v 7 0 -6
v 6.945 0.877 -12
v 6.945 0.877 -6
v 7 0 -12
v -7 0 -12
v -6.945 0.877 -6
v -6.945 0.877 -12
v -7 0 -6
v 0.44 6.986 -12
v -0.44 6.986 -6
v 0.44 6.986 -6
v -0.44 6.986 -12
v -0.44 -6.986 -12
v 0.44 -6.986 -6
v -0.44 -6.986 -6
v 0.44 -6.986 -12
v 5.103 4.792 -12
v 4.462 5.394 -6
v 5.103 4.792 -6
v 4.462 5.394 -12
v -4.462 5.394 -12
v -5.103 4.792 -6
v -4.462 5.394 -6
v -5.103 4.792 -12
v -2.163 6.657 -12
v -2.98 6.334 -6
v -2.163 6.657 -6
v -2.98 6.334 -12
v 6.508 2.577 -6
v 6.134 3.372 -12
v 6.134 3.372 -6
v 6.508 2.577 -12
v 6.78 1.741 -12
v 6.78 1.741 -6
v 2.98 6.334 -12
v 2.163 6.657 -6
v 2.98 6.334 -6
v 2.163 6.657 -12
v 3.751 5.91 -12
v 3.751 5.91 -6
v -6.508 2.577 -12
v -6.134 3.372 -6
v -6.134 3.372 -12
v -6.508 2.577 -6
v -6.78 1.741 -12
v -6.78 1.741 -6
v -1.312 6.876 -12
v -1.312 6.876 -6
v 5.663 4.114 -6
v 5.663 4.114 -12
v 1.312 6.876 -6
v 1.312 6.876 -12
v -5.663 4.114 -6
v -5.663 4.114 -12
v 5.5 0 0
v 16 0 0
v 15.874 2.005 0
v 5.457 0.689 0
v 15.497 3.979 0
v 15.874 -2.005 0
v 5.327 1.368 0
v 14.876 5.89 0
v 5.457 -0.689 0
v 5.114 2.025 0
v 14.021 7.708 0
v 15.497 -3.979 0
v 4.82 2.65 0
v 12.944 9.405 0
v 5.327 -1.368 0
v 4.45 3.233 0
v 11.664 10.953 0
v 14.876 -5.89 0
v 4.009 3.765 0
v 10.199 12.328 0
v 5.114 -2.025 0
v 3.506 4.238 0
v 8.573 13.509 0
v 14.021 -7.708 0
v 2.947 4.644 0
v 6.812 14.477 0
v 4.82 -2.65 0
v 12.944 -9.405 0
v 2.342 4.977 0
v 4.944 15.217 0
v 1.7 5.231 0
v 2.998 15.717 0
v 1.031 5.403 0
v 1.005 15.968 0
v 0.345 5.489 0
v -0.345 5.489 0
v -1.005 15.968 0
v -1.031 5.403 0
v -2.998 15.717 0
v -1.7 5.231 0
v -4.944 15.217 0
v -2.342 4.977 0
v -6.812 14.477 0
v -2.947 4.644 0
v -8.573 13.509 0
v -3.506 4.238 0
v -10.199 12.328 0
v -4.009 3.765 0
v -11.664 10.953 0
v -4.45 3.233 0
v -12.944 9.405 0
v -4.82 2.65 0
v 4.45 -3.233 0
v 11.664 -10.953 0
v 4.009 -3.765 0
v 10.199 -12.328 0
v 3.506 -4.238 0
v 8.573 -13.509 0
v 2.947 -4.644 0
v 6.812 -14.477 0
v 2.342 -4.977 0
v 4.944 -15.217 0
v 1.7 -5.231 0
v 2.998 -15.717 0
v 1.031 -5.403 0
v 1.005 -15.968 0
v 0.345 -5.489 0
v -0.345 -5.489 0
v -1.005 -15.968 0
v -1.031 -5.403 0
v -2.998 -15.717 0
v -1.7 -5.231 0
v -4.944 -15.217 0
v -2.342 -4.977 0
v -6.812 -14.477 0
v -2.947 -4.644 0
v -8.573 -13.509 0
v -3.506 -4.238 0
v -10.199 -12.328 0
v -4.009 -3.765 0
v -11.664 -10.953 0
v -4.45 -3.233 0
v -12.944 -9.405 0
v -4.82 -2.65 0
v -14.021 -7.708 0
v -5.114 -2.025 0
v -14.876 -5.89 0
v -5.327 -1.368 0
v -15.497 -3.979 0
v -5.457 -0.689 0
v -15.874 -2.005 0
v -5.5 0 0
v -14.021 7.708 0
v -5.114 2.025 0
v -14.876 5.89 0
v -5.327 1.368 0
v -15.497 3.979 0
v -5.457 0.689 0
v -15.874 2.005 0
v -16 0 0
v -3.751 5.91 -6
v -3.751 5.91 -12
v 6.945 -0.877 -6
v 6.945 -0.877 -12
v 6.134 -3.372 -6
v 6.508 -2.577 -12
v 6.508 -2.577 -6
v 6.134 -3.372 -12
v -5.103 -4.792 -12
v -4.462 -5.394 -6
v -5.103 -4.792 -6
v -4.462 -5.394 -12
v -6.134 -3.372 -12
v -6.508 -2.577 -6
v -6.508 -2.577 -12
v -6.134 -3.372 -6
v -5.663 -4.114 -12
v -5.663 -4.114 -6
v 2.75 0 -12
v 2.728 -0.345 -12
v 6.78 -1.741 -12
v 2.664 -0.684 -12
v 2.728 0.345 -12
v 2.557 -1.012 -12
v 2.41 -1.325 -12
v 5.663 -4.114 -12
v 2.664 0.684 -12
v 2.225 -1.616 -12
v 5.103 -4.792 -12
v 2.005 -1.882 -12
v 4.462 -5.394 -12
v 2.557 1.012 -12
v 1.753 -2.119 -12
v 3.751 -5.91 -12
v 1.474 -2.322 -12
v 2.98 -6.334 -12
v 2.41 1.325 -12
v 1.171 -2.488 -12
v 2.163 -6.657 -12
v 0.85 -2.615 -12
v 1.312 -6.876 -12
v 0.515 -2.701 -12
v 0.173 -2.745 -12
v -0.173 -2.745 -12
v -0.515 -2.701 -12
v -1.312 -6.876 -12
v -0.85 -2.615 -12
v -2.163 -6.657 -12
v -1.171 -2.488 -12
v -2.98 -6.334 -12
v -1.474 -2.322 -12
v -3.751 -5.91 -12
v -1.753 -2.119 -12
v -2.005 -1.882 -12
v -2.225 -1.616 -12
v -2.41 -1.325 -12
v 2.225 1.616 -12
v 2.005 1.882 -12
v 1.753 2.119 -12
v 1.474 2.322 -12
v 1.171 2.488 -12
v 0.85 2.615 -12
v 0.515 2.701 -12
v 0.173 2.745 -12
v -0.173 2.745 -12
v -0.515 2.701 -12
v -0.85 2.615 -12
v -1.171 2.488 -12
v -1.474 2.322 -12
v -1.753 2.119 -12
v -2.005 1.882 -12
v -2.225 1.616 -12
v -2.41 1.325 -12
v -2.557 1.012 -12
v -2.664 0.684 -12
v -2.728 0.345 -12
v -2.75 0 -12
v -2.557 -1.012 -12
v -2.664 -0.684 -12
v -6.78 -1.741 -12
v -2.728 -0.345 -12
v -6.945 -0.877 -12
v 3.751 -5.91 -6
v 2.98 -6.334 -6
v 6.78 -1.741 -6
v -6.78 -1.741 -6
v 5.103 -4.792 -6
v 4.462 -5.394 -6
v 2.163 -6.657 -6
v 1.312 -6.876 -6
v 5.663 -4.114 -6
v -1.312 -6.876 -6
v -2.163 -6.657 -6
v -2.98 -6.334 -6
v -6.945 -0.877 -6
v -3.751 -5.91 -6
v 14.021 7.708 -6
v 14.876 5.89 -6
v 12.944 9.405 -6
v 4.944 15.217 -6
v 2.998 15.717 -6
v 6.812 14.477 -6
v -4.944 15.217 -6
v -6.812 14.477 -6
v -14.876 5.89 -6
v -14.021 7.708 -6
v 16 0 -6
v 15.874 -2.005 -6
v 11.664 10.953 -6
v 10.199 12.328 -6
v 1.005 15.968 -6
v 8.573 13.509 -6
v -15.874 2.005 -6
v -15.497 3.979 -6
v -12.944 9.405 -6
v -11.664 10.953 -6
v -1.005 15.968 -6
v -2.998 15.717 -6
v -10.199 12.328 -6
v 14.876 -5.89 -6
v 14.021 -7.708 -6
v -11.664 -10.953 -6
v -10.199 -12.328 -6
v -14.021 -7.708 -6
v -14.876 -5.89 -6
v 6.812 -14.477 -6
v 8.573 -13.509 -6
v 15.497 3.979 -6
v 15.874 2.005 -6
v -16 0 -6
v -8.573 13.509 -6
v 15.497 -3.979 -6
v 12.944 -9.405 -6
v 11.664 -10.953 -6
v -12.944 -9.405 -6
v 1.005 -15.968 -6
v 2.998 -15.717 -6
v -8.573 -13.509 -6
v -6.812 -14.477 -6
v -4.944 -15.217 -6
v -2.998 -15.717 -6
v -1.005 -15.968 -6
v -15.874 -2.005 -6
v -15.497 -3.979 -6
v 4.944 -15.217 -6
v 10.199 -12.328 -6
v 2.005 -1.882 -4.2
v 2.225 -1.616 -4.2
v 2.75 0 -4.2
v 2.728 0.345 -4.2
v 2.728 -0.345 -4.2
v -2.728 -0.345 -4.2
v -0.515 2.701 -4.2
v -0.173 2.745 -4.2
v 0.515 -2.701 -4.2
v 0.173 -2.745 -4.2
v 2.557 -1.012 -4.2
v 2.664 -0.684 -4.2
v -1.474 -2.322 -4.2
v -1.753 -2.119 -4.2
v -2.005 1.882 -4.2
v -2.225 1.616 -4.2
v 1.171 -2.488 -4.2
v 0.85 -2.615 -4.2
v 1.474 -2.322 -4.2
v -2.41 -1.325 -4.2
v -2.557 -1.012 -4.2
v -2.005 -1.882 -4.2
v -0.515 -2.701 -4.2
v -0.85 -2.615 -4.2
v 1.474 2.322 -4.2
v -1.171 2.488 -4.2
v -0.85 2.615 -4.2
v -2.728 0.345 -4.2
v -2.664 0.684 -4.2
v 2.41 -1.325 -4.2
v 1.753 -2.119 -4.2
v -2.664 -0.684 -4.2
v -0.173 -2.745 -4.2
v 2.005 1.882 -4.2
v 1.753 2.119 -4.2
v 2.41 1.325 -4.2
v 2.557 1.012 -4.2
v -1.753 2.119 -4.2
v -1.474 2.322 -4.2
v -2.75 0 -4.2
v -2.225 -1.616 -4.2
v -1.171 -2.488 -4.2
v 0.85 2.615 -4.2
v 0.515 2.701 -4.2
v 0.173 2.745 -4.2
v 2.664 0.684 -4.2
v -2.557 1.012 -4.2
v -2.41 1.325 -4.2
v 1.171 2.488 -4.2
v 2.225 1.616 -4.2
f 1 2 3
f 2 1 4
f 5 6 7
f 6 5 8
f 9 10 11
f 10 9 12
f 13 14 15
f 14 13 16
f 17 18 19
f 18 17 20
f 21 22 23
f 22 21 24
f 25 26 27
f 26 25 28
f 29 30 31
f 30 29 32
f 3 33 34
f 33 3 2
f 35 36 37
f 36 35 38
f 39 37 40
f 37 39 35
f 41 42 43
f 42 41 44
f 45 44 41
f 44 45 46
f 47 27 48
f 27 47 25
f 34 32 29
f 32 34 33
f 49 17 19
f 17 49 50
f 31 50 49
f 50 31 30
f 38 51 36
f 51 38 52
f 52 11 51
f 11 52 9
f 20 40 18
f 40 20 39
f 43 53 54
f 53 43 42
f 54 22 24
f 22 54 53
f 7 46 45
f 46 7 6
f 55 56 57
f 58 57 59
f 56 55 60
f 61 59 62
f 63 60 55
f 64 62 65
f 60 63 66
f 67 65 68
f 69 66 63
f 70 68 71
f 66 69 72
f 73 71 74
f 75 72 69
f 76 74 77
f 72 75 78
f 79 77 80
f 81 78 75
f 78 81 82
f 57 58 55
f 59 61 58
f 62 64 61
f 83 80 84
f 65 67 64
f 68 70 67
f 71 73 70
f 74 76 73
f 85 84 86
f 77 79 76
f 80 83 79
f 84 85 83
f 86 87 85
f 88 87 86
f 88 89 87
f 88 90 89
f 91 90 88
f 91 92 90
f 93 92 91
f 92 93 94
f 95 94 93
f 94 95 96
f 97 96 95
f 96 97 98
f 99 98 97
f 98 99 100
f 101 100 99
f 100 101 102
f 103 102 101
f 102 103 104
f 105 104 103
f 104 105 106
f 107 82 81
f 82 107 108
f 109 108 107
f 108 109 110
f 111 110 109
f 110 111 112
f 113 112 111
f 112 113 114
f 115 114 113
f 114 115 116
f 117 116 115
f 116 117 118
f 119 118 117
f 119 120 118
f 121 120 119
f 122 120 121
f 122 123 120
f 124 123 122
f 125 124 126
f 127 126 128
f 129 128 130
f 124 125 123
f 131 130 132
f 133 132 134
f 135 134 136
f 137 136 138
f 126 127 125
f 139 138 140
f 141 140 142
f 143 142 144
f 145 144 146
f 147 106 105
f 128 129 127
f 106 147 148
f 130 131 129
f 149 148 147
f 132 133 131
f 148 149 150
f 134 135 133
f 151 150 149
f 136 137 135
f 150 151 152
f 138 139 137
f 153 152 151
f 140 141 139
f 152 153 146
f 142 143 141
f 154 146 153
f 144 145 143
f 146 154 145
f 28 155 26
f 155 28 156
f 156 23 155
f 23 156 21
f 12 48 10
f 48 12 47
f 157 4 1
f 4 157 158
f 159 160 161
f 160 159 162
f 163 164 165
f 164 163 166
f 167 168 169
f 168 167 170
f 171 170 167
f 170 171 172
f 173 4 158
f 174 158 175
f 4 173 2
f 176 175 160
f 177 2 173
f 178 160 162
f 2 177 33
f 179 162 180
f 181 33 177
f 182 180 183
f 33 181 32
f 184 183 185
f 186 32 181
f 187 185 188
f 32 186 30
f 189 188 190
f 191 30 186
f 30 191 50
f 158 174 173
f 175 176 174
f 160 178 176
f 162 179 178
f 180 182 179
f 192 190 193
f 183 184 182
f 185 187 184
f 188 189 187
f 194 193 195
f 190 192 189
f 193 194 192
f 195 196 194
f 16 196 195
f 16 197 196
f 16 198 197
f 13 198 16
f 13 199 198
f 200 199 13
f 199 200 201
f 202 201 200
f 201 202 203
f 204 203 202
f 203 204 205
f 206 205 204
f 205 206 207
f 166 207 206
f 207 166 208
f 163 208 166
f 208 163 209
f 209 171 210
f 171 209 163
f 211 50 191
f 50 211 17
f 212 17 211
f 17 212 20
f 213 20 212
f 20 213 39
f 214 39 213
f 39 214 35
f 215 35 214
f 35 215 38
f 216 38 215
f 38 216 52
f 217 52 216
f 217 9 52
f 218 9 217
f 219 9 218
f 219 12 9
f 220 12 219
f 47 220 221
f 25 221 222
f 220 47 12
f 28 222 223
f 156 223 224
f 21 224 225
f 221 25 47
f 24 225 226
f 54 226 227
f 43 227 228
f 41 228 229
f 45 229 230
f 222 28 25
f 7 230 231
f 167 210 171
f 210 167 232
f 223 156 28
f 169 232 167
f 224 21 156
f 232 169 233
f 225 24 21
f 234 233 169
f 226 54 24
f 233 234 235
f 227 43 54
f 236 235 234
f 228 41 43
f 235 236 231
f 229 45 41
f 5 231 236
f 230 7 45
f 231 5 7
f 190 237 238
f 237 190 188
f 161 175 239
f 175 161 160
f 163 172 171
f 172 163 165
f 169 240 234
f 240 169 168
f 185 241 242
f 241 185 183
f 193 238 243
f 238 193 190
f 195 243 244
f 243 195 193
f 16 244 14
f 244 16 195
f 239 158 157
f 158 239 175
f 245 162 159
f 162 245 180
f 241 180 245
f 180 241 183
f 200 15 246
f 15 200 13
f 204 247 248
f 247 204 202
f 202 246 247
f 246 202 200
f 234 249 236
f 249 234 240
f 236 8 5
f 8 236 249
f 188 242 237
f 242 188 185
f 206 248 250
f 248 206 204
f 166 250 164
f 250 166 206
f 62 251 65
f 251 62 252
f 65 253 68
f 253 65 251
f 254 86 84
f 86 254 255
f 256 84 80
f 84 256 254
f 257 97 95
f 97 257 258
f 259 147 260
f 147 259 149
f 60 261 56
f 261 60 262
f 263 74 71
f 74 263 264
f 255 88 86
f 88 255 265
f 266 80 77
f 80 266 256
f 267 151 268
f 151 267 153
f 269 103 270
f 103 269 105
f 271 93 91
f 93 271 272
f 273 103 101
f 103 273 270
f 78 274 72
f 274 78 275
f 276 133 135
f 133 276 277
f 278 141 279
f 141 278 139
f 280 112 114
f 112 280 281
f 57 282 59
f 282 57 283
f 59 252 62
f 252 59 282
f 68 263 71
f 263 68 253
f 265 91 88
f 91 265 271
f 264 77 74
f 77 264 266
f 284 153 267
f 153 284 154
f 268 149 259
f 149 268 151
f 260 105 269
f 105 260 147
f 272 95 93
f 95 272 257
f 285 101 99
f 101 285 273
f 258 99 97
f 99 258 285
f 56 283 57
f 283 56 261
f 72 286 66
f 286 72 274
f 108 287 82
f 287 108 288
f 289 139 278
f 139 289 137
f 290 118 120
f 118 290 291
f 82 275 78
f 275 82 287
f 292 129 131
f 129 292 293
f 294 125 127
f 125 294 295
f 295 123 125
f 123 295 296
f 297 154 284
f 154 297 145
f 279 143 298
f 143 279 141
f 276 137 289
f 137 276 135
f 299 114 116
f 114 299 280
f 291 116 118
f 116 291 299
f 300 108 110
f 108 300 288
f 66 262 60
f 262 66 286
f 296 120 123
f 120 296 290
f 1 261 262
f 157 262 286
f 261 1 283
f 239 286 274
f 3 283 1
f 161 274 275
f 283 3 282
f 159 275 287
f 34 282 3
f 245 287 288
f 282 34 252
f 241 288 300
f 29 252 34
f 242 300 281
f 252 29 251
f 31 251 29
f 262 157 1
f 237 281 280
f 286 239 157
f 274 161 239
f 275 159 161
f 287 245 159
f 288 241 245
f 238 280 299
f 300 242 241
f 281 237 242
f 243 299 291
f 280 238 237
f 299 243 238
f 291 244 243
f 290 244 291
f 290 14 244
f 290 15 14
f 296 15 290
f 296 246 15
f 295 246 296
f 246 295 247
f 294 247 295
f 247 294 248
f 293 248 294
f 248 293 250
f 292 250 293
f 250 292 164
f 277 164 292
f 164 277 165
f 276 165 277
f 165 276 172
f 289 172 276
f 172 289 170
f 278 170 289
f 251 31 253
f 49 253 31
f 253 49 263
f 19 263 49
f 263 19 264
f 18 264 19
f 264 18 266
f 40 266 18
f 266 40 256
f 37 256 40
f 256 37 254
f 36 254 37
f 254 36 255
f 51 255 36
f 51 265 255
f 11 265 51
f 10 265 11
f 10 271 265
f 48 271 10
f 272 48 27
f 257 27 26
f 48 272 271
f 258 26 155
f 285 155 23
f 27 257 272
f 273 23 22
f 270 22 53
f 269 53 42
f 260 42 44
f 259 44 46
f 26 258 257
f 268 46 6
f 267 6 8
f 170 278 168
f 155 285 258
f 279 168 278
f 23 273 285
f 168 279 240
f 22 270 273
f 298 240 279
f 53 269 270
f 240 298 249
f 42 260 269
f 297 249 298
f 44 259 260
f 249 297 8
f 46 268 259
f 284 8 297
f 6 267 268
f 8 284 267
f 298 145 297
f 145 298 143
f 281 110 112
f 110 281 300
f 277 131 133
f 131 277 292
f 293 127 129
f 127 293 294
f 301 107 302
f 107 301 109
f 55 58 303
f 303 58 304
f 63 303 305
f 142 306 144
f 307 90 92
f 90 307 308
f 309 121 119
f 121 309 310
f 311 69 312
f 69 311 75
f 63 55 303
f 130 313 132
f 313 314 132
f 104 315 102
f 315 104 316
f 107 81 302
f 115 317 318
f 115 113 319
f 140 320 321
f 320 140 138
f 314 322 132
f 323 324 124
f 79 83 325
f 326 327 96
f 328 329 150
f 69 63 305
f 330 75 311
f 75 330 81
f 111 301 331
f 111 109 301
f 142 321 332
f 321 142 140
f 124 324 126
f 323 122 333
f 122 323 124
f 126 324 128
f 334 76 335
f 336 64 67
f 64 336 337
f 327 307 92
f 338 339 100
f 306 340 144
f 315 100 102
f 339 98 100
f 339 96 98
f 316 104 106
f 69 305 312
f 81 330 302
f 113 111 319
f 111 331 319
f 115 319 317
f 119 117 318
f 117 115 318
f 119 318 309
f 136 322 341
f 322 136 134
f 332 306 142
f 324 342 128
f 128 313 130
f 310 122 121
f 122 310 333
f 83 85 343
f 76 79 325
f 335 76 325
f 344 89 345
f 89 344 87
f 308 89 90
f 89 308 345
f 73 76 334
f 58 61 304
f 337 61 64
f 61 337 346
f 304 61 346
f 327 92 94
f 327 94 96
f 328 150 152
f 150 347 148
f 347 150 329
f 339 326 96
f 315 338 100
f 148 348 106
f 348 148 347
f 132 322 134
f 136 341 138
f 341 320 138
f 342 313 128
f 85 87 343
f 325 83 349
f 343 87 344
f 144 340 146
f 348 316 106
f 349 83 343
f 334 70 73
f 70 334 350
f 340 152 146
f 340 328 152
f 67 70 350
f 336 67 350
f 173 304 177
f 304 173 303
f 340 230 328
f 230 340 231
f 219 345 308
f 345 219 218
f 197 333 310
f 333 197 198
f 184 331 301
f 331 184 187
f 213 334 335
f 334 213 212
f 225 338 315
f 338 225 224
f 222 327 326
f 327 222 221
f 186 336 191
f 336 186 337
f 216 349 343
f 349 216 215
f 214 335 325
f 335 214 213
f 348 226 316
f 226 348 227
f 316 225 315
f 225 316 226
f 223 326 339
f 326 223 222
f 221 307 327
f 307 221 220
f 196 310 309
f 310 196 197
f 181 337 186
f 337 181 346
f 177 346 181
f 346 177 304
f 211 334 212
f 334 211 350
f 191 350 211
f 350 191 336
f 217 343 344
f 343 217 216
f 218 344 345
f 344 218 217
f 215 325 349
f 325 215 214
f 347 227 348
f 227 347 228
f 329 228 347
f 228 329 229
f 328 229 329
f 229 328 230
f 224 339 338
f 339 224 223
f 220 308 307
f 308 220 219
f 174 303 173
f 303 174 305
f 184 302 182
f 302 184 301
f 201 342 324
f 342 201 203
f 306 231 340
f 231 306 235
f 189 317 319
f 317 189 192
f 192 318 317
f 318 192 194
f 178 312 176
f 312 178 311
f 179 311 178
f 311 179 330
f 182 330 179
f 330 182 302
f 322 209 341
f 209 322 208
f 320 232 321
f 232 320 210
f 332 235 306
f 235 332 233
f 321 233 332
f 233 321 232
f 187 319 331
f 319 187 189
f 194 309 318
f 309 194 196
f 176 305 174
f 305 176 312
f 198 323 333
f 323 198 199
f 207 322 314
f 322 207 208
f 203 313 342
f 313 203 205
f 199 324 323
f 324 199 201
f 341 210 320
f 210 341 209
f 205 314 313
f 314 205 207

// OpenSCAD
$fn = 50;


difference() {
	union() {
		translate(v = [0, 0, -12.0000000000]) {
			cylinder(h = 12, r = 7.0000000000);
		}
		translate(v = [0, 0, -6.0000000000]) {
			cylinder(h = 6, r = 16.0000000000);
		}
	}
	union() {
		translate(v = [0, 0, 0]) {
			rotate(a = [0, 0, 0]) {
				difference() {
					union() {
						#translate(v = [0, 0, -12.0000000000]) {
							cylinder(h = 12, r = 2.2500000000);
						}
						#translate(v = [0, 0, -4.2000000000]) {
							cylinder(h = 4.2000000000, r = 7.0000000000, r1 = 2.7500000000, r2 = 5.5000000000);
						}
						#translate(v = [0, 0, -12.0000000000]) {
							cylinder(h = 12, r = 2.7500000000);
						}
						#translate(v = [0, 0, -12.0000000000]) {
							cylinder(h = 12, r = 2.2500000000);
						}
					}
					union();
				}
			}
		}
	}
}
